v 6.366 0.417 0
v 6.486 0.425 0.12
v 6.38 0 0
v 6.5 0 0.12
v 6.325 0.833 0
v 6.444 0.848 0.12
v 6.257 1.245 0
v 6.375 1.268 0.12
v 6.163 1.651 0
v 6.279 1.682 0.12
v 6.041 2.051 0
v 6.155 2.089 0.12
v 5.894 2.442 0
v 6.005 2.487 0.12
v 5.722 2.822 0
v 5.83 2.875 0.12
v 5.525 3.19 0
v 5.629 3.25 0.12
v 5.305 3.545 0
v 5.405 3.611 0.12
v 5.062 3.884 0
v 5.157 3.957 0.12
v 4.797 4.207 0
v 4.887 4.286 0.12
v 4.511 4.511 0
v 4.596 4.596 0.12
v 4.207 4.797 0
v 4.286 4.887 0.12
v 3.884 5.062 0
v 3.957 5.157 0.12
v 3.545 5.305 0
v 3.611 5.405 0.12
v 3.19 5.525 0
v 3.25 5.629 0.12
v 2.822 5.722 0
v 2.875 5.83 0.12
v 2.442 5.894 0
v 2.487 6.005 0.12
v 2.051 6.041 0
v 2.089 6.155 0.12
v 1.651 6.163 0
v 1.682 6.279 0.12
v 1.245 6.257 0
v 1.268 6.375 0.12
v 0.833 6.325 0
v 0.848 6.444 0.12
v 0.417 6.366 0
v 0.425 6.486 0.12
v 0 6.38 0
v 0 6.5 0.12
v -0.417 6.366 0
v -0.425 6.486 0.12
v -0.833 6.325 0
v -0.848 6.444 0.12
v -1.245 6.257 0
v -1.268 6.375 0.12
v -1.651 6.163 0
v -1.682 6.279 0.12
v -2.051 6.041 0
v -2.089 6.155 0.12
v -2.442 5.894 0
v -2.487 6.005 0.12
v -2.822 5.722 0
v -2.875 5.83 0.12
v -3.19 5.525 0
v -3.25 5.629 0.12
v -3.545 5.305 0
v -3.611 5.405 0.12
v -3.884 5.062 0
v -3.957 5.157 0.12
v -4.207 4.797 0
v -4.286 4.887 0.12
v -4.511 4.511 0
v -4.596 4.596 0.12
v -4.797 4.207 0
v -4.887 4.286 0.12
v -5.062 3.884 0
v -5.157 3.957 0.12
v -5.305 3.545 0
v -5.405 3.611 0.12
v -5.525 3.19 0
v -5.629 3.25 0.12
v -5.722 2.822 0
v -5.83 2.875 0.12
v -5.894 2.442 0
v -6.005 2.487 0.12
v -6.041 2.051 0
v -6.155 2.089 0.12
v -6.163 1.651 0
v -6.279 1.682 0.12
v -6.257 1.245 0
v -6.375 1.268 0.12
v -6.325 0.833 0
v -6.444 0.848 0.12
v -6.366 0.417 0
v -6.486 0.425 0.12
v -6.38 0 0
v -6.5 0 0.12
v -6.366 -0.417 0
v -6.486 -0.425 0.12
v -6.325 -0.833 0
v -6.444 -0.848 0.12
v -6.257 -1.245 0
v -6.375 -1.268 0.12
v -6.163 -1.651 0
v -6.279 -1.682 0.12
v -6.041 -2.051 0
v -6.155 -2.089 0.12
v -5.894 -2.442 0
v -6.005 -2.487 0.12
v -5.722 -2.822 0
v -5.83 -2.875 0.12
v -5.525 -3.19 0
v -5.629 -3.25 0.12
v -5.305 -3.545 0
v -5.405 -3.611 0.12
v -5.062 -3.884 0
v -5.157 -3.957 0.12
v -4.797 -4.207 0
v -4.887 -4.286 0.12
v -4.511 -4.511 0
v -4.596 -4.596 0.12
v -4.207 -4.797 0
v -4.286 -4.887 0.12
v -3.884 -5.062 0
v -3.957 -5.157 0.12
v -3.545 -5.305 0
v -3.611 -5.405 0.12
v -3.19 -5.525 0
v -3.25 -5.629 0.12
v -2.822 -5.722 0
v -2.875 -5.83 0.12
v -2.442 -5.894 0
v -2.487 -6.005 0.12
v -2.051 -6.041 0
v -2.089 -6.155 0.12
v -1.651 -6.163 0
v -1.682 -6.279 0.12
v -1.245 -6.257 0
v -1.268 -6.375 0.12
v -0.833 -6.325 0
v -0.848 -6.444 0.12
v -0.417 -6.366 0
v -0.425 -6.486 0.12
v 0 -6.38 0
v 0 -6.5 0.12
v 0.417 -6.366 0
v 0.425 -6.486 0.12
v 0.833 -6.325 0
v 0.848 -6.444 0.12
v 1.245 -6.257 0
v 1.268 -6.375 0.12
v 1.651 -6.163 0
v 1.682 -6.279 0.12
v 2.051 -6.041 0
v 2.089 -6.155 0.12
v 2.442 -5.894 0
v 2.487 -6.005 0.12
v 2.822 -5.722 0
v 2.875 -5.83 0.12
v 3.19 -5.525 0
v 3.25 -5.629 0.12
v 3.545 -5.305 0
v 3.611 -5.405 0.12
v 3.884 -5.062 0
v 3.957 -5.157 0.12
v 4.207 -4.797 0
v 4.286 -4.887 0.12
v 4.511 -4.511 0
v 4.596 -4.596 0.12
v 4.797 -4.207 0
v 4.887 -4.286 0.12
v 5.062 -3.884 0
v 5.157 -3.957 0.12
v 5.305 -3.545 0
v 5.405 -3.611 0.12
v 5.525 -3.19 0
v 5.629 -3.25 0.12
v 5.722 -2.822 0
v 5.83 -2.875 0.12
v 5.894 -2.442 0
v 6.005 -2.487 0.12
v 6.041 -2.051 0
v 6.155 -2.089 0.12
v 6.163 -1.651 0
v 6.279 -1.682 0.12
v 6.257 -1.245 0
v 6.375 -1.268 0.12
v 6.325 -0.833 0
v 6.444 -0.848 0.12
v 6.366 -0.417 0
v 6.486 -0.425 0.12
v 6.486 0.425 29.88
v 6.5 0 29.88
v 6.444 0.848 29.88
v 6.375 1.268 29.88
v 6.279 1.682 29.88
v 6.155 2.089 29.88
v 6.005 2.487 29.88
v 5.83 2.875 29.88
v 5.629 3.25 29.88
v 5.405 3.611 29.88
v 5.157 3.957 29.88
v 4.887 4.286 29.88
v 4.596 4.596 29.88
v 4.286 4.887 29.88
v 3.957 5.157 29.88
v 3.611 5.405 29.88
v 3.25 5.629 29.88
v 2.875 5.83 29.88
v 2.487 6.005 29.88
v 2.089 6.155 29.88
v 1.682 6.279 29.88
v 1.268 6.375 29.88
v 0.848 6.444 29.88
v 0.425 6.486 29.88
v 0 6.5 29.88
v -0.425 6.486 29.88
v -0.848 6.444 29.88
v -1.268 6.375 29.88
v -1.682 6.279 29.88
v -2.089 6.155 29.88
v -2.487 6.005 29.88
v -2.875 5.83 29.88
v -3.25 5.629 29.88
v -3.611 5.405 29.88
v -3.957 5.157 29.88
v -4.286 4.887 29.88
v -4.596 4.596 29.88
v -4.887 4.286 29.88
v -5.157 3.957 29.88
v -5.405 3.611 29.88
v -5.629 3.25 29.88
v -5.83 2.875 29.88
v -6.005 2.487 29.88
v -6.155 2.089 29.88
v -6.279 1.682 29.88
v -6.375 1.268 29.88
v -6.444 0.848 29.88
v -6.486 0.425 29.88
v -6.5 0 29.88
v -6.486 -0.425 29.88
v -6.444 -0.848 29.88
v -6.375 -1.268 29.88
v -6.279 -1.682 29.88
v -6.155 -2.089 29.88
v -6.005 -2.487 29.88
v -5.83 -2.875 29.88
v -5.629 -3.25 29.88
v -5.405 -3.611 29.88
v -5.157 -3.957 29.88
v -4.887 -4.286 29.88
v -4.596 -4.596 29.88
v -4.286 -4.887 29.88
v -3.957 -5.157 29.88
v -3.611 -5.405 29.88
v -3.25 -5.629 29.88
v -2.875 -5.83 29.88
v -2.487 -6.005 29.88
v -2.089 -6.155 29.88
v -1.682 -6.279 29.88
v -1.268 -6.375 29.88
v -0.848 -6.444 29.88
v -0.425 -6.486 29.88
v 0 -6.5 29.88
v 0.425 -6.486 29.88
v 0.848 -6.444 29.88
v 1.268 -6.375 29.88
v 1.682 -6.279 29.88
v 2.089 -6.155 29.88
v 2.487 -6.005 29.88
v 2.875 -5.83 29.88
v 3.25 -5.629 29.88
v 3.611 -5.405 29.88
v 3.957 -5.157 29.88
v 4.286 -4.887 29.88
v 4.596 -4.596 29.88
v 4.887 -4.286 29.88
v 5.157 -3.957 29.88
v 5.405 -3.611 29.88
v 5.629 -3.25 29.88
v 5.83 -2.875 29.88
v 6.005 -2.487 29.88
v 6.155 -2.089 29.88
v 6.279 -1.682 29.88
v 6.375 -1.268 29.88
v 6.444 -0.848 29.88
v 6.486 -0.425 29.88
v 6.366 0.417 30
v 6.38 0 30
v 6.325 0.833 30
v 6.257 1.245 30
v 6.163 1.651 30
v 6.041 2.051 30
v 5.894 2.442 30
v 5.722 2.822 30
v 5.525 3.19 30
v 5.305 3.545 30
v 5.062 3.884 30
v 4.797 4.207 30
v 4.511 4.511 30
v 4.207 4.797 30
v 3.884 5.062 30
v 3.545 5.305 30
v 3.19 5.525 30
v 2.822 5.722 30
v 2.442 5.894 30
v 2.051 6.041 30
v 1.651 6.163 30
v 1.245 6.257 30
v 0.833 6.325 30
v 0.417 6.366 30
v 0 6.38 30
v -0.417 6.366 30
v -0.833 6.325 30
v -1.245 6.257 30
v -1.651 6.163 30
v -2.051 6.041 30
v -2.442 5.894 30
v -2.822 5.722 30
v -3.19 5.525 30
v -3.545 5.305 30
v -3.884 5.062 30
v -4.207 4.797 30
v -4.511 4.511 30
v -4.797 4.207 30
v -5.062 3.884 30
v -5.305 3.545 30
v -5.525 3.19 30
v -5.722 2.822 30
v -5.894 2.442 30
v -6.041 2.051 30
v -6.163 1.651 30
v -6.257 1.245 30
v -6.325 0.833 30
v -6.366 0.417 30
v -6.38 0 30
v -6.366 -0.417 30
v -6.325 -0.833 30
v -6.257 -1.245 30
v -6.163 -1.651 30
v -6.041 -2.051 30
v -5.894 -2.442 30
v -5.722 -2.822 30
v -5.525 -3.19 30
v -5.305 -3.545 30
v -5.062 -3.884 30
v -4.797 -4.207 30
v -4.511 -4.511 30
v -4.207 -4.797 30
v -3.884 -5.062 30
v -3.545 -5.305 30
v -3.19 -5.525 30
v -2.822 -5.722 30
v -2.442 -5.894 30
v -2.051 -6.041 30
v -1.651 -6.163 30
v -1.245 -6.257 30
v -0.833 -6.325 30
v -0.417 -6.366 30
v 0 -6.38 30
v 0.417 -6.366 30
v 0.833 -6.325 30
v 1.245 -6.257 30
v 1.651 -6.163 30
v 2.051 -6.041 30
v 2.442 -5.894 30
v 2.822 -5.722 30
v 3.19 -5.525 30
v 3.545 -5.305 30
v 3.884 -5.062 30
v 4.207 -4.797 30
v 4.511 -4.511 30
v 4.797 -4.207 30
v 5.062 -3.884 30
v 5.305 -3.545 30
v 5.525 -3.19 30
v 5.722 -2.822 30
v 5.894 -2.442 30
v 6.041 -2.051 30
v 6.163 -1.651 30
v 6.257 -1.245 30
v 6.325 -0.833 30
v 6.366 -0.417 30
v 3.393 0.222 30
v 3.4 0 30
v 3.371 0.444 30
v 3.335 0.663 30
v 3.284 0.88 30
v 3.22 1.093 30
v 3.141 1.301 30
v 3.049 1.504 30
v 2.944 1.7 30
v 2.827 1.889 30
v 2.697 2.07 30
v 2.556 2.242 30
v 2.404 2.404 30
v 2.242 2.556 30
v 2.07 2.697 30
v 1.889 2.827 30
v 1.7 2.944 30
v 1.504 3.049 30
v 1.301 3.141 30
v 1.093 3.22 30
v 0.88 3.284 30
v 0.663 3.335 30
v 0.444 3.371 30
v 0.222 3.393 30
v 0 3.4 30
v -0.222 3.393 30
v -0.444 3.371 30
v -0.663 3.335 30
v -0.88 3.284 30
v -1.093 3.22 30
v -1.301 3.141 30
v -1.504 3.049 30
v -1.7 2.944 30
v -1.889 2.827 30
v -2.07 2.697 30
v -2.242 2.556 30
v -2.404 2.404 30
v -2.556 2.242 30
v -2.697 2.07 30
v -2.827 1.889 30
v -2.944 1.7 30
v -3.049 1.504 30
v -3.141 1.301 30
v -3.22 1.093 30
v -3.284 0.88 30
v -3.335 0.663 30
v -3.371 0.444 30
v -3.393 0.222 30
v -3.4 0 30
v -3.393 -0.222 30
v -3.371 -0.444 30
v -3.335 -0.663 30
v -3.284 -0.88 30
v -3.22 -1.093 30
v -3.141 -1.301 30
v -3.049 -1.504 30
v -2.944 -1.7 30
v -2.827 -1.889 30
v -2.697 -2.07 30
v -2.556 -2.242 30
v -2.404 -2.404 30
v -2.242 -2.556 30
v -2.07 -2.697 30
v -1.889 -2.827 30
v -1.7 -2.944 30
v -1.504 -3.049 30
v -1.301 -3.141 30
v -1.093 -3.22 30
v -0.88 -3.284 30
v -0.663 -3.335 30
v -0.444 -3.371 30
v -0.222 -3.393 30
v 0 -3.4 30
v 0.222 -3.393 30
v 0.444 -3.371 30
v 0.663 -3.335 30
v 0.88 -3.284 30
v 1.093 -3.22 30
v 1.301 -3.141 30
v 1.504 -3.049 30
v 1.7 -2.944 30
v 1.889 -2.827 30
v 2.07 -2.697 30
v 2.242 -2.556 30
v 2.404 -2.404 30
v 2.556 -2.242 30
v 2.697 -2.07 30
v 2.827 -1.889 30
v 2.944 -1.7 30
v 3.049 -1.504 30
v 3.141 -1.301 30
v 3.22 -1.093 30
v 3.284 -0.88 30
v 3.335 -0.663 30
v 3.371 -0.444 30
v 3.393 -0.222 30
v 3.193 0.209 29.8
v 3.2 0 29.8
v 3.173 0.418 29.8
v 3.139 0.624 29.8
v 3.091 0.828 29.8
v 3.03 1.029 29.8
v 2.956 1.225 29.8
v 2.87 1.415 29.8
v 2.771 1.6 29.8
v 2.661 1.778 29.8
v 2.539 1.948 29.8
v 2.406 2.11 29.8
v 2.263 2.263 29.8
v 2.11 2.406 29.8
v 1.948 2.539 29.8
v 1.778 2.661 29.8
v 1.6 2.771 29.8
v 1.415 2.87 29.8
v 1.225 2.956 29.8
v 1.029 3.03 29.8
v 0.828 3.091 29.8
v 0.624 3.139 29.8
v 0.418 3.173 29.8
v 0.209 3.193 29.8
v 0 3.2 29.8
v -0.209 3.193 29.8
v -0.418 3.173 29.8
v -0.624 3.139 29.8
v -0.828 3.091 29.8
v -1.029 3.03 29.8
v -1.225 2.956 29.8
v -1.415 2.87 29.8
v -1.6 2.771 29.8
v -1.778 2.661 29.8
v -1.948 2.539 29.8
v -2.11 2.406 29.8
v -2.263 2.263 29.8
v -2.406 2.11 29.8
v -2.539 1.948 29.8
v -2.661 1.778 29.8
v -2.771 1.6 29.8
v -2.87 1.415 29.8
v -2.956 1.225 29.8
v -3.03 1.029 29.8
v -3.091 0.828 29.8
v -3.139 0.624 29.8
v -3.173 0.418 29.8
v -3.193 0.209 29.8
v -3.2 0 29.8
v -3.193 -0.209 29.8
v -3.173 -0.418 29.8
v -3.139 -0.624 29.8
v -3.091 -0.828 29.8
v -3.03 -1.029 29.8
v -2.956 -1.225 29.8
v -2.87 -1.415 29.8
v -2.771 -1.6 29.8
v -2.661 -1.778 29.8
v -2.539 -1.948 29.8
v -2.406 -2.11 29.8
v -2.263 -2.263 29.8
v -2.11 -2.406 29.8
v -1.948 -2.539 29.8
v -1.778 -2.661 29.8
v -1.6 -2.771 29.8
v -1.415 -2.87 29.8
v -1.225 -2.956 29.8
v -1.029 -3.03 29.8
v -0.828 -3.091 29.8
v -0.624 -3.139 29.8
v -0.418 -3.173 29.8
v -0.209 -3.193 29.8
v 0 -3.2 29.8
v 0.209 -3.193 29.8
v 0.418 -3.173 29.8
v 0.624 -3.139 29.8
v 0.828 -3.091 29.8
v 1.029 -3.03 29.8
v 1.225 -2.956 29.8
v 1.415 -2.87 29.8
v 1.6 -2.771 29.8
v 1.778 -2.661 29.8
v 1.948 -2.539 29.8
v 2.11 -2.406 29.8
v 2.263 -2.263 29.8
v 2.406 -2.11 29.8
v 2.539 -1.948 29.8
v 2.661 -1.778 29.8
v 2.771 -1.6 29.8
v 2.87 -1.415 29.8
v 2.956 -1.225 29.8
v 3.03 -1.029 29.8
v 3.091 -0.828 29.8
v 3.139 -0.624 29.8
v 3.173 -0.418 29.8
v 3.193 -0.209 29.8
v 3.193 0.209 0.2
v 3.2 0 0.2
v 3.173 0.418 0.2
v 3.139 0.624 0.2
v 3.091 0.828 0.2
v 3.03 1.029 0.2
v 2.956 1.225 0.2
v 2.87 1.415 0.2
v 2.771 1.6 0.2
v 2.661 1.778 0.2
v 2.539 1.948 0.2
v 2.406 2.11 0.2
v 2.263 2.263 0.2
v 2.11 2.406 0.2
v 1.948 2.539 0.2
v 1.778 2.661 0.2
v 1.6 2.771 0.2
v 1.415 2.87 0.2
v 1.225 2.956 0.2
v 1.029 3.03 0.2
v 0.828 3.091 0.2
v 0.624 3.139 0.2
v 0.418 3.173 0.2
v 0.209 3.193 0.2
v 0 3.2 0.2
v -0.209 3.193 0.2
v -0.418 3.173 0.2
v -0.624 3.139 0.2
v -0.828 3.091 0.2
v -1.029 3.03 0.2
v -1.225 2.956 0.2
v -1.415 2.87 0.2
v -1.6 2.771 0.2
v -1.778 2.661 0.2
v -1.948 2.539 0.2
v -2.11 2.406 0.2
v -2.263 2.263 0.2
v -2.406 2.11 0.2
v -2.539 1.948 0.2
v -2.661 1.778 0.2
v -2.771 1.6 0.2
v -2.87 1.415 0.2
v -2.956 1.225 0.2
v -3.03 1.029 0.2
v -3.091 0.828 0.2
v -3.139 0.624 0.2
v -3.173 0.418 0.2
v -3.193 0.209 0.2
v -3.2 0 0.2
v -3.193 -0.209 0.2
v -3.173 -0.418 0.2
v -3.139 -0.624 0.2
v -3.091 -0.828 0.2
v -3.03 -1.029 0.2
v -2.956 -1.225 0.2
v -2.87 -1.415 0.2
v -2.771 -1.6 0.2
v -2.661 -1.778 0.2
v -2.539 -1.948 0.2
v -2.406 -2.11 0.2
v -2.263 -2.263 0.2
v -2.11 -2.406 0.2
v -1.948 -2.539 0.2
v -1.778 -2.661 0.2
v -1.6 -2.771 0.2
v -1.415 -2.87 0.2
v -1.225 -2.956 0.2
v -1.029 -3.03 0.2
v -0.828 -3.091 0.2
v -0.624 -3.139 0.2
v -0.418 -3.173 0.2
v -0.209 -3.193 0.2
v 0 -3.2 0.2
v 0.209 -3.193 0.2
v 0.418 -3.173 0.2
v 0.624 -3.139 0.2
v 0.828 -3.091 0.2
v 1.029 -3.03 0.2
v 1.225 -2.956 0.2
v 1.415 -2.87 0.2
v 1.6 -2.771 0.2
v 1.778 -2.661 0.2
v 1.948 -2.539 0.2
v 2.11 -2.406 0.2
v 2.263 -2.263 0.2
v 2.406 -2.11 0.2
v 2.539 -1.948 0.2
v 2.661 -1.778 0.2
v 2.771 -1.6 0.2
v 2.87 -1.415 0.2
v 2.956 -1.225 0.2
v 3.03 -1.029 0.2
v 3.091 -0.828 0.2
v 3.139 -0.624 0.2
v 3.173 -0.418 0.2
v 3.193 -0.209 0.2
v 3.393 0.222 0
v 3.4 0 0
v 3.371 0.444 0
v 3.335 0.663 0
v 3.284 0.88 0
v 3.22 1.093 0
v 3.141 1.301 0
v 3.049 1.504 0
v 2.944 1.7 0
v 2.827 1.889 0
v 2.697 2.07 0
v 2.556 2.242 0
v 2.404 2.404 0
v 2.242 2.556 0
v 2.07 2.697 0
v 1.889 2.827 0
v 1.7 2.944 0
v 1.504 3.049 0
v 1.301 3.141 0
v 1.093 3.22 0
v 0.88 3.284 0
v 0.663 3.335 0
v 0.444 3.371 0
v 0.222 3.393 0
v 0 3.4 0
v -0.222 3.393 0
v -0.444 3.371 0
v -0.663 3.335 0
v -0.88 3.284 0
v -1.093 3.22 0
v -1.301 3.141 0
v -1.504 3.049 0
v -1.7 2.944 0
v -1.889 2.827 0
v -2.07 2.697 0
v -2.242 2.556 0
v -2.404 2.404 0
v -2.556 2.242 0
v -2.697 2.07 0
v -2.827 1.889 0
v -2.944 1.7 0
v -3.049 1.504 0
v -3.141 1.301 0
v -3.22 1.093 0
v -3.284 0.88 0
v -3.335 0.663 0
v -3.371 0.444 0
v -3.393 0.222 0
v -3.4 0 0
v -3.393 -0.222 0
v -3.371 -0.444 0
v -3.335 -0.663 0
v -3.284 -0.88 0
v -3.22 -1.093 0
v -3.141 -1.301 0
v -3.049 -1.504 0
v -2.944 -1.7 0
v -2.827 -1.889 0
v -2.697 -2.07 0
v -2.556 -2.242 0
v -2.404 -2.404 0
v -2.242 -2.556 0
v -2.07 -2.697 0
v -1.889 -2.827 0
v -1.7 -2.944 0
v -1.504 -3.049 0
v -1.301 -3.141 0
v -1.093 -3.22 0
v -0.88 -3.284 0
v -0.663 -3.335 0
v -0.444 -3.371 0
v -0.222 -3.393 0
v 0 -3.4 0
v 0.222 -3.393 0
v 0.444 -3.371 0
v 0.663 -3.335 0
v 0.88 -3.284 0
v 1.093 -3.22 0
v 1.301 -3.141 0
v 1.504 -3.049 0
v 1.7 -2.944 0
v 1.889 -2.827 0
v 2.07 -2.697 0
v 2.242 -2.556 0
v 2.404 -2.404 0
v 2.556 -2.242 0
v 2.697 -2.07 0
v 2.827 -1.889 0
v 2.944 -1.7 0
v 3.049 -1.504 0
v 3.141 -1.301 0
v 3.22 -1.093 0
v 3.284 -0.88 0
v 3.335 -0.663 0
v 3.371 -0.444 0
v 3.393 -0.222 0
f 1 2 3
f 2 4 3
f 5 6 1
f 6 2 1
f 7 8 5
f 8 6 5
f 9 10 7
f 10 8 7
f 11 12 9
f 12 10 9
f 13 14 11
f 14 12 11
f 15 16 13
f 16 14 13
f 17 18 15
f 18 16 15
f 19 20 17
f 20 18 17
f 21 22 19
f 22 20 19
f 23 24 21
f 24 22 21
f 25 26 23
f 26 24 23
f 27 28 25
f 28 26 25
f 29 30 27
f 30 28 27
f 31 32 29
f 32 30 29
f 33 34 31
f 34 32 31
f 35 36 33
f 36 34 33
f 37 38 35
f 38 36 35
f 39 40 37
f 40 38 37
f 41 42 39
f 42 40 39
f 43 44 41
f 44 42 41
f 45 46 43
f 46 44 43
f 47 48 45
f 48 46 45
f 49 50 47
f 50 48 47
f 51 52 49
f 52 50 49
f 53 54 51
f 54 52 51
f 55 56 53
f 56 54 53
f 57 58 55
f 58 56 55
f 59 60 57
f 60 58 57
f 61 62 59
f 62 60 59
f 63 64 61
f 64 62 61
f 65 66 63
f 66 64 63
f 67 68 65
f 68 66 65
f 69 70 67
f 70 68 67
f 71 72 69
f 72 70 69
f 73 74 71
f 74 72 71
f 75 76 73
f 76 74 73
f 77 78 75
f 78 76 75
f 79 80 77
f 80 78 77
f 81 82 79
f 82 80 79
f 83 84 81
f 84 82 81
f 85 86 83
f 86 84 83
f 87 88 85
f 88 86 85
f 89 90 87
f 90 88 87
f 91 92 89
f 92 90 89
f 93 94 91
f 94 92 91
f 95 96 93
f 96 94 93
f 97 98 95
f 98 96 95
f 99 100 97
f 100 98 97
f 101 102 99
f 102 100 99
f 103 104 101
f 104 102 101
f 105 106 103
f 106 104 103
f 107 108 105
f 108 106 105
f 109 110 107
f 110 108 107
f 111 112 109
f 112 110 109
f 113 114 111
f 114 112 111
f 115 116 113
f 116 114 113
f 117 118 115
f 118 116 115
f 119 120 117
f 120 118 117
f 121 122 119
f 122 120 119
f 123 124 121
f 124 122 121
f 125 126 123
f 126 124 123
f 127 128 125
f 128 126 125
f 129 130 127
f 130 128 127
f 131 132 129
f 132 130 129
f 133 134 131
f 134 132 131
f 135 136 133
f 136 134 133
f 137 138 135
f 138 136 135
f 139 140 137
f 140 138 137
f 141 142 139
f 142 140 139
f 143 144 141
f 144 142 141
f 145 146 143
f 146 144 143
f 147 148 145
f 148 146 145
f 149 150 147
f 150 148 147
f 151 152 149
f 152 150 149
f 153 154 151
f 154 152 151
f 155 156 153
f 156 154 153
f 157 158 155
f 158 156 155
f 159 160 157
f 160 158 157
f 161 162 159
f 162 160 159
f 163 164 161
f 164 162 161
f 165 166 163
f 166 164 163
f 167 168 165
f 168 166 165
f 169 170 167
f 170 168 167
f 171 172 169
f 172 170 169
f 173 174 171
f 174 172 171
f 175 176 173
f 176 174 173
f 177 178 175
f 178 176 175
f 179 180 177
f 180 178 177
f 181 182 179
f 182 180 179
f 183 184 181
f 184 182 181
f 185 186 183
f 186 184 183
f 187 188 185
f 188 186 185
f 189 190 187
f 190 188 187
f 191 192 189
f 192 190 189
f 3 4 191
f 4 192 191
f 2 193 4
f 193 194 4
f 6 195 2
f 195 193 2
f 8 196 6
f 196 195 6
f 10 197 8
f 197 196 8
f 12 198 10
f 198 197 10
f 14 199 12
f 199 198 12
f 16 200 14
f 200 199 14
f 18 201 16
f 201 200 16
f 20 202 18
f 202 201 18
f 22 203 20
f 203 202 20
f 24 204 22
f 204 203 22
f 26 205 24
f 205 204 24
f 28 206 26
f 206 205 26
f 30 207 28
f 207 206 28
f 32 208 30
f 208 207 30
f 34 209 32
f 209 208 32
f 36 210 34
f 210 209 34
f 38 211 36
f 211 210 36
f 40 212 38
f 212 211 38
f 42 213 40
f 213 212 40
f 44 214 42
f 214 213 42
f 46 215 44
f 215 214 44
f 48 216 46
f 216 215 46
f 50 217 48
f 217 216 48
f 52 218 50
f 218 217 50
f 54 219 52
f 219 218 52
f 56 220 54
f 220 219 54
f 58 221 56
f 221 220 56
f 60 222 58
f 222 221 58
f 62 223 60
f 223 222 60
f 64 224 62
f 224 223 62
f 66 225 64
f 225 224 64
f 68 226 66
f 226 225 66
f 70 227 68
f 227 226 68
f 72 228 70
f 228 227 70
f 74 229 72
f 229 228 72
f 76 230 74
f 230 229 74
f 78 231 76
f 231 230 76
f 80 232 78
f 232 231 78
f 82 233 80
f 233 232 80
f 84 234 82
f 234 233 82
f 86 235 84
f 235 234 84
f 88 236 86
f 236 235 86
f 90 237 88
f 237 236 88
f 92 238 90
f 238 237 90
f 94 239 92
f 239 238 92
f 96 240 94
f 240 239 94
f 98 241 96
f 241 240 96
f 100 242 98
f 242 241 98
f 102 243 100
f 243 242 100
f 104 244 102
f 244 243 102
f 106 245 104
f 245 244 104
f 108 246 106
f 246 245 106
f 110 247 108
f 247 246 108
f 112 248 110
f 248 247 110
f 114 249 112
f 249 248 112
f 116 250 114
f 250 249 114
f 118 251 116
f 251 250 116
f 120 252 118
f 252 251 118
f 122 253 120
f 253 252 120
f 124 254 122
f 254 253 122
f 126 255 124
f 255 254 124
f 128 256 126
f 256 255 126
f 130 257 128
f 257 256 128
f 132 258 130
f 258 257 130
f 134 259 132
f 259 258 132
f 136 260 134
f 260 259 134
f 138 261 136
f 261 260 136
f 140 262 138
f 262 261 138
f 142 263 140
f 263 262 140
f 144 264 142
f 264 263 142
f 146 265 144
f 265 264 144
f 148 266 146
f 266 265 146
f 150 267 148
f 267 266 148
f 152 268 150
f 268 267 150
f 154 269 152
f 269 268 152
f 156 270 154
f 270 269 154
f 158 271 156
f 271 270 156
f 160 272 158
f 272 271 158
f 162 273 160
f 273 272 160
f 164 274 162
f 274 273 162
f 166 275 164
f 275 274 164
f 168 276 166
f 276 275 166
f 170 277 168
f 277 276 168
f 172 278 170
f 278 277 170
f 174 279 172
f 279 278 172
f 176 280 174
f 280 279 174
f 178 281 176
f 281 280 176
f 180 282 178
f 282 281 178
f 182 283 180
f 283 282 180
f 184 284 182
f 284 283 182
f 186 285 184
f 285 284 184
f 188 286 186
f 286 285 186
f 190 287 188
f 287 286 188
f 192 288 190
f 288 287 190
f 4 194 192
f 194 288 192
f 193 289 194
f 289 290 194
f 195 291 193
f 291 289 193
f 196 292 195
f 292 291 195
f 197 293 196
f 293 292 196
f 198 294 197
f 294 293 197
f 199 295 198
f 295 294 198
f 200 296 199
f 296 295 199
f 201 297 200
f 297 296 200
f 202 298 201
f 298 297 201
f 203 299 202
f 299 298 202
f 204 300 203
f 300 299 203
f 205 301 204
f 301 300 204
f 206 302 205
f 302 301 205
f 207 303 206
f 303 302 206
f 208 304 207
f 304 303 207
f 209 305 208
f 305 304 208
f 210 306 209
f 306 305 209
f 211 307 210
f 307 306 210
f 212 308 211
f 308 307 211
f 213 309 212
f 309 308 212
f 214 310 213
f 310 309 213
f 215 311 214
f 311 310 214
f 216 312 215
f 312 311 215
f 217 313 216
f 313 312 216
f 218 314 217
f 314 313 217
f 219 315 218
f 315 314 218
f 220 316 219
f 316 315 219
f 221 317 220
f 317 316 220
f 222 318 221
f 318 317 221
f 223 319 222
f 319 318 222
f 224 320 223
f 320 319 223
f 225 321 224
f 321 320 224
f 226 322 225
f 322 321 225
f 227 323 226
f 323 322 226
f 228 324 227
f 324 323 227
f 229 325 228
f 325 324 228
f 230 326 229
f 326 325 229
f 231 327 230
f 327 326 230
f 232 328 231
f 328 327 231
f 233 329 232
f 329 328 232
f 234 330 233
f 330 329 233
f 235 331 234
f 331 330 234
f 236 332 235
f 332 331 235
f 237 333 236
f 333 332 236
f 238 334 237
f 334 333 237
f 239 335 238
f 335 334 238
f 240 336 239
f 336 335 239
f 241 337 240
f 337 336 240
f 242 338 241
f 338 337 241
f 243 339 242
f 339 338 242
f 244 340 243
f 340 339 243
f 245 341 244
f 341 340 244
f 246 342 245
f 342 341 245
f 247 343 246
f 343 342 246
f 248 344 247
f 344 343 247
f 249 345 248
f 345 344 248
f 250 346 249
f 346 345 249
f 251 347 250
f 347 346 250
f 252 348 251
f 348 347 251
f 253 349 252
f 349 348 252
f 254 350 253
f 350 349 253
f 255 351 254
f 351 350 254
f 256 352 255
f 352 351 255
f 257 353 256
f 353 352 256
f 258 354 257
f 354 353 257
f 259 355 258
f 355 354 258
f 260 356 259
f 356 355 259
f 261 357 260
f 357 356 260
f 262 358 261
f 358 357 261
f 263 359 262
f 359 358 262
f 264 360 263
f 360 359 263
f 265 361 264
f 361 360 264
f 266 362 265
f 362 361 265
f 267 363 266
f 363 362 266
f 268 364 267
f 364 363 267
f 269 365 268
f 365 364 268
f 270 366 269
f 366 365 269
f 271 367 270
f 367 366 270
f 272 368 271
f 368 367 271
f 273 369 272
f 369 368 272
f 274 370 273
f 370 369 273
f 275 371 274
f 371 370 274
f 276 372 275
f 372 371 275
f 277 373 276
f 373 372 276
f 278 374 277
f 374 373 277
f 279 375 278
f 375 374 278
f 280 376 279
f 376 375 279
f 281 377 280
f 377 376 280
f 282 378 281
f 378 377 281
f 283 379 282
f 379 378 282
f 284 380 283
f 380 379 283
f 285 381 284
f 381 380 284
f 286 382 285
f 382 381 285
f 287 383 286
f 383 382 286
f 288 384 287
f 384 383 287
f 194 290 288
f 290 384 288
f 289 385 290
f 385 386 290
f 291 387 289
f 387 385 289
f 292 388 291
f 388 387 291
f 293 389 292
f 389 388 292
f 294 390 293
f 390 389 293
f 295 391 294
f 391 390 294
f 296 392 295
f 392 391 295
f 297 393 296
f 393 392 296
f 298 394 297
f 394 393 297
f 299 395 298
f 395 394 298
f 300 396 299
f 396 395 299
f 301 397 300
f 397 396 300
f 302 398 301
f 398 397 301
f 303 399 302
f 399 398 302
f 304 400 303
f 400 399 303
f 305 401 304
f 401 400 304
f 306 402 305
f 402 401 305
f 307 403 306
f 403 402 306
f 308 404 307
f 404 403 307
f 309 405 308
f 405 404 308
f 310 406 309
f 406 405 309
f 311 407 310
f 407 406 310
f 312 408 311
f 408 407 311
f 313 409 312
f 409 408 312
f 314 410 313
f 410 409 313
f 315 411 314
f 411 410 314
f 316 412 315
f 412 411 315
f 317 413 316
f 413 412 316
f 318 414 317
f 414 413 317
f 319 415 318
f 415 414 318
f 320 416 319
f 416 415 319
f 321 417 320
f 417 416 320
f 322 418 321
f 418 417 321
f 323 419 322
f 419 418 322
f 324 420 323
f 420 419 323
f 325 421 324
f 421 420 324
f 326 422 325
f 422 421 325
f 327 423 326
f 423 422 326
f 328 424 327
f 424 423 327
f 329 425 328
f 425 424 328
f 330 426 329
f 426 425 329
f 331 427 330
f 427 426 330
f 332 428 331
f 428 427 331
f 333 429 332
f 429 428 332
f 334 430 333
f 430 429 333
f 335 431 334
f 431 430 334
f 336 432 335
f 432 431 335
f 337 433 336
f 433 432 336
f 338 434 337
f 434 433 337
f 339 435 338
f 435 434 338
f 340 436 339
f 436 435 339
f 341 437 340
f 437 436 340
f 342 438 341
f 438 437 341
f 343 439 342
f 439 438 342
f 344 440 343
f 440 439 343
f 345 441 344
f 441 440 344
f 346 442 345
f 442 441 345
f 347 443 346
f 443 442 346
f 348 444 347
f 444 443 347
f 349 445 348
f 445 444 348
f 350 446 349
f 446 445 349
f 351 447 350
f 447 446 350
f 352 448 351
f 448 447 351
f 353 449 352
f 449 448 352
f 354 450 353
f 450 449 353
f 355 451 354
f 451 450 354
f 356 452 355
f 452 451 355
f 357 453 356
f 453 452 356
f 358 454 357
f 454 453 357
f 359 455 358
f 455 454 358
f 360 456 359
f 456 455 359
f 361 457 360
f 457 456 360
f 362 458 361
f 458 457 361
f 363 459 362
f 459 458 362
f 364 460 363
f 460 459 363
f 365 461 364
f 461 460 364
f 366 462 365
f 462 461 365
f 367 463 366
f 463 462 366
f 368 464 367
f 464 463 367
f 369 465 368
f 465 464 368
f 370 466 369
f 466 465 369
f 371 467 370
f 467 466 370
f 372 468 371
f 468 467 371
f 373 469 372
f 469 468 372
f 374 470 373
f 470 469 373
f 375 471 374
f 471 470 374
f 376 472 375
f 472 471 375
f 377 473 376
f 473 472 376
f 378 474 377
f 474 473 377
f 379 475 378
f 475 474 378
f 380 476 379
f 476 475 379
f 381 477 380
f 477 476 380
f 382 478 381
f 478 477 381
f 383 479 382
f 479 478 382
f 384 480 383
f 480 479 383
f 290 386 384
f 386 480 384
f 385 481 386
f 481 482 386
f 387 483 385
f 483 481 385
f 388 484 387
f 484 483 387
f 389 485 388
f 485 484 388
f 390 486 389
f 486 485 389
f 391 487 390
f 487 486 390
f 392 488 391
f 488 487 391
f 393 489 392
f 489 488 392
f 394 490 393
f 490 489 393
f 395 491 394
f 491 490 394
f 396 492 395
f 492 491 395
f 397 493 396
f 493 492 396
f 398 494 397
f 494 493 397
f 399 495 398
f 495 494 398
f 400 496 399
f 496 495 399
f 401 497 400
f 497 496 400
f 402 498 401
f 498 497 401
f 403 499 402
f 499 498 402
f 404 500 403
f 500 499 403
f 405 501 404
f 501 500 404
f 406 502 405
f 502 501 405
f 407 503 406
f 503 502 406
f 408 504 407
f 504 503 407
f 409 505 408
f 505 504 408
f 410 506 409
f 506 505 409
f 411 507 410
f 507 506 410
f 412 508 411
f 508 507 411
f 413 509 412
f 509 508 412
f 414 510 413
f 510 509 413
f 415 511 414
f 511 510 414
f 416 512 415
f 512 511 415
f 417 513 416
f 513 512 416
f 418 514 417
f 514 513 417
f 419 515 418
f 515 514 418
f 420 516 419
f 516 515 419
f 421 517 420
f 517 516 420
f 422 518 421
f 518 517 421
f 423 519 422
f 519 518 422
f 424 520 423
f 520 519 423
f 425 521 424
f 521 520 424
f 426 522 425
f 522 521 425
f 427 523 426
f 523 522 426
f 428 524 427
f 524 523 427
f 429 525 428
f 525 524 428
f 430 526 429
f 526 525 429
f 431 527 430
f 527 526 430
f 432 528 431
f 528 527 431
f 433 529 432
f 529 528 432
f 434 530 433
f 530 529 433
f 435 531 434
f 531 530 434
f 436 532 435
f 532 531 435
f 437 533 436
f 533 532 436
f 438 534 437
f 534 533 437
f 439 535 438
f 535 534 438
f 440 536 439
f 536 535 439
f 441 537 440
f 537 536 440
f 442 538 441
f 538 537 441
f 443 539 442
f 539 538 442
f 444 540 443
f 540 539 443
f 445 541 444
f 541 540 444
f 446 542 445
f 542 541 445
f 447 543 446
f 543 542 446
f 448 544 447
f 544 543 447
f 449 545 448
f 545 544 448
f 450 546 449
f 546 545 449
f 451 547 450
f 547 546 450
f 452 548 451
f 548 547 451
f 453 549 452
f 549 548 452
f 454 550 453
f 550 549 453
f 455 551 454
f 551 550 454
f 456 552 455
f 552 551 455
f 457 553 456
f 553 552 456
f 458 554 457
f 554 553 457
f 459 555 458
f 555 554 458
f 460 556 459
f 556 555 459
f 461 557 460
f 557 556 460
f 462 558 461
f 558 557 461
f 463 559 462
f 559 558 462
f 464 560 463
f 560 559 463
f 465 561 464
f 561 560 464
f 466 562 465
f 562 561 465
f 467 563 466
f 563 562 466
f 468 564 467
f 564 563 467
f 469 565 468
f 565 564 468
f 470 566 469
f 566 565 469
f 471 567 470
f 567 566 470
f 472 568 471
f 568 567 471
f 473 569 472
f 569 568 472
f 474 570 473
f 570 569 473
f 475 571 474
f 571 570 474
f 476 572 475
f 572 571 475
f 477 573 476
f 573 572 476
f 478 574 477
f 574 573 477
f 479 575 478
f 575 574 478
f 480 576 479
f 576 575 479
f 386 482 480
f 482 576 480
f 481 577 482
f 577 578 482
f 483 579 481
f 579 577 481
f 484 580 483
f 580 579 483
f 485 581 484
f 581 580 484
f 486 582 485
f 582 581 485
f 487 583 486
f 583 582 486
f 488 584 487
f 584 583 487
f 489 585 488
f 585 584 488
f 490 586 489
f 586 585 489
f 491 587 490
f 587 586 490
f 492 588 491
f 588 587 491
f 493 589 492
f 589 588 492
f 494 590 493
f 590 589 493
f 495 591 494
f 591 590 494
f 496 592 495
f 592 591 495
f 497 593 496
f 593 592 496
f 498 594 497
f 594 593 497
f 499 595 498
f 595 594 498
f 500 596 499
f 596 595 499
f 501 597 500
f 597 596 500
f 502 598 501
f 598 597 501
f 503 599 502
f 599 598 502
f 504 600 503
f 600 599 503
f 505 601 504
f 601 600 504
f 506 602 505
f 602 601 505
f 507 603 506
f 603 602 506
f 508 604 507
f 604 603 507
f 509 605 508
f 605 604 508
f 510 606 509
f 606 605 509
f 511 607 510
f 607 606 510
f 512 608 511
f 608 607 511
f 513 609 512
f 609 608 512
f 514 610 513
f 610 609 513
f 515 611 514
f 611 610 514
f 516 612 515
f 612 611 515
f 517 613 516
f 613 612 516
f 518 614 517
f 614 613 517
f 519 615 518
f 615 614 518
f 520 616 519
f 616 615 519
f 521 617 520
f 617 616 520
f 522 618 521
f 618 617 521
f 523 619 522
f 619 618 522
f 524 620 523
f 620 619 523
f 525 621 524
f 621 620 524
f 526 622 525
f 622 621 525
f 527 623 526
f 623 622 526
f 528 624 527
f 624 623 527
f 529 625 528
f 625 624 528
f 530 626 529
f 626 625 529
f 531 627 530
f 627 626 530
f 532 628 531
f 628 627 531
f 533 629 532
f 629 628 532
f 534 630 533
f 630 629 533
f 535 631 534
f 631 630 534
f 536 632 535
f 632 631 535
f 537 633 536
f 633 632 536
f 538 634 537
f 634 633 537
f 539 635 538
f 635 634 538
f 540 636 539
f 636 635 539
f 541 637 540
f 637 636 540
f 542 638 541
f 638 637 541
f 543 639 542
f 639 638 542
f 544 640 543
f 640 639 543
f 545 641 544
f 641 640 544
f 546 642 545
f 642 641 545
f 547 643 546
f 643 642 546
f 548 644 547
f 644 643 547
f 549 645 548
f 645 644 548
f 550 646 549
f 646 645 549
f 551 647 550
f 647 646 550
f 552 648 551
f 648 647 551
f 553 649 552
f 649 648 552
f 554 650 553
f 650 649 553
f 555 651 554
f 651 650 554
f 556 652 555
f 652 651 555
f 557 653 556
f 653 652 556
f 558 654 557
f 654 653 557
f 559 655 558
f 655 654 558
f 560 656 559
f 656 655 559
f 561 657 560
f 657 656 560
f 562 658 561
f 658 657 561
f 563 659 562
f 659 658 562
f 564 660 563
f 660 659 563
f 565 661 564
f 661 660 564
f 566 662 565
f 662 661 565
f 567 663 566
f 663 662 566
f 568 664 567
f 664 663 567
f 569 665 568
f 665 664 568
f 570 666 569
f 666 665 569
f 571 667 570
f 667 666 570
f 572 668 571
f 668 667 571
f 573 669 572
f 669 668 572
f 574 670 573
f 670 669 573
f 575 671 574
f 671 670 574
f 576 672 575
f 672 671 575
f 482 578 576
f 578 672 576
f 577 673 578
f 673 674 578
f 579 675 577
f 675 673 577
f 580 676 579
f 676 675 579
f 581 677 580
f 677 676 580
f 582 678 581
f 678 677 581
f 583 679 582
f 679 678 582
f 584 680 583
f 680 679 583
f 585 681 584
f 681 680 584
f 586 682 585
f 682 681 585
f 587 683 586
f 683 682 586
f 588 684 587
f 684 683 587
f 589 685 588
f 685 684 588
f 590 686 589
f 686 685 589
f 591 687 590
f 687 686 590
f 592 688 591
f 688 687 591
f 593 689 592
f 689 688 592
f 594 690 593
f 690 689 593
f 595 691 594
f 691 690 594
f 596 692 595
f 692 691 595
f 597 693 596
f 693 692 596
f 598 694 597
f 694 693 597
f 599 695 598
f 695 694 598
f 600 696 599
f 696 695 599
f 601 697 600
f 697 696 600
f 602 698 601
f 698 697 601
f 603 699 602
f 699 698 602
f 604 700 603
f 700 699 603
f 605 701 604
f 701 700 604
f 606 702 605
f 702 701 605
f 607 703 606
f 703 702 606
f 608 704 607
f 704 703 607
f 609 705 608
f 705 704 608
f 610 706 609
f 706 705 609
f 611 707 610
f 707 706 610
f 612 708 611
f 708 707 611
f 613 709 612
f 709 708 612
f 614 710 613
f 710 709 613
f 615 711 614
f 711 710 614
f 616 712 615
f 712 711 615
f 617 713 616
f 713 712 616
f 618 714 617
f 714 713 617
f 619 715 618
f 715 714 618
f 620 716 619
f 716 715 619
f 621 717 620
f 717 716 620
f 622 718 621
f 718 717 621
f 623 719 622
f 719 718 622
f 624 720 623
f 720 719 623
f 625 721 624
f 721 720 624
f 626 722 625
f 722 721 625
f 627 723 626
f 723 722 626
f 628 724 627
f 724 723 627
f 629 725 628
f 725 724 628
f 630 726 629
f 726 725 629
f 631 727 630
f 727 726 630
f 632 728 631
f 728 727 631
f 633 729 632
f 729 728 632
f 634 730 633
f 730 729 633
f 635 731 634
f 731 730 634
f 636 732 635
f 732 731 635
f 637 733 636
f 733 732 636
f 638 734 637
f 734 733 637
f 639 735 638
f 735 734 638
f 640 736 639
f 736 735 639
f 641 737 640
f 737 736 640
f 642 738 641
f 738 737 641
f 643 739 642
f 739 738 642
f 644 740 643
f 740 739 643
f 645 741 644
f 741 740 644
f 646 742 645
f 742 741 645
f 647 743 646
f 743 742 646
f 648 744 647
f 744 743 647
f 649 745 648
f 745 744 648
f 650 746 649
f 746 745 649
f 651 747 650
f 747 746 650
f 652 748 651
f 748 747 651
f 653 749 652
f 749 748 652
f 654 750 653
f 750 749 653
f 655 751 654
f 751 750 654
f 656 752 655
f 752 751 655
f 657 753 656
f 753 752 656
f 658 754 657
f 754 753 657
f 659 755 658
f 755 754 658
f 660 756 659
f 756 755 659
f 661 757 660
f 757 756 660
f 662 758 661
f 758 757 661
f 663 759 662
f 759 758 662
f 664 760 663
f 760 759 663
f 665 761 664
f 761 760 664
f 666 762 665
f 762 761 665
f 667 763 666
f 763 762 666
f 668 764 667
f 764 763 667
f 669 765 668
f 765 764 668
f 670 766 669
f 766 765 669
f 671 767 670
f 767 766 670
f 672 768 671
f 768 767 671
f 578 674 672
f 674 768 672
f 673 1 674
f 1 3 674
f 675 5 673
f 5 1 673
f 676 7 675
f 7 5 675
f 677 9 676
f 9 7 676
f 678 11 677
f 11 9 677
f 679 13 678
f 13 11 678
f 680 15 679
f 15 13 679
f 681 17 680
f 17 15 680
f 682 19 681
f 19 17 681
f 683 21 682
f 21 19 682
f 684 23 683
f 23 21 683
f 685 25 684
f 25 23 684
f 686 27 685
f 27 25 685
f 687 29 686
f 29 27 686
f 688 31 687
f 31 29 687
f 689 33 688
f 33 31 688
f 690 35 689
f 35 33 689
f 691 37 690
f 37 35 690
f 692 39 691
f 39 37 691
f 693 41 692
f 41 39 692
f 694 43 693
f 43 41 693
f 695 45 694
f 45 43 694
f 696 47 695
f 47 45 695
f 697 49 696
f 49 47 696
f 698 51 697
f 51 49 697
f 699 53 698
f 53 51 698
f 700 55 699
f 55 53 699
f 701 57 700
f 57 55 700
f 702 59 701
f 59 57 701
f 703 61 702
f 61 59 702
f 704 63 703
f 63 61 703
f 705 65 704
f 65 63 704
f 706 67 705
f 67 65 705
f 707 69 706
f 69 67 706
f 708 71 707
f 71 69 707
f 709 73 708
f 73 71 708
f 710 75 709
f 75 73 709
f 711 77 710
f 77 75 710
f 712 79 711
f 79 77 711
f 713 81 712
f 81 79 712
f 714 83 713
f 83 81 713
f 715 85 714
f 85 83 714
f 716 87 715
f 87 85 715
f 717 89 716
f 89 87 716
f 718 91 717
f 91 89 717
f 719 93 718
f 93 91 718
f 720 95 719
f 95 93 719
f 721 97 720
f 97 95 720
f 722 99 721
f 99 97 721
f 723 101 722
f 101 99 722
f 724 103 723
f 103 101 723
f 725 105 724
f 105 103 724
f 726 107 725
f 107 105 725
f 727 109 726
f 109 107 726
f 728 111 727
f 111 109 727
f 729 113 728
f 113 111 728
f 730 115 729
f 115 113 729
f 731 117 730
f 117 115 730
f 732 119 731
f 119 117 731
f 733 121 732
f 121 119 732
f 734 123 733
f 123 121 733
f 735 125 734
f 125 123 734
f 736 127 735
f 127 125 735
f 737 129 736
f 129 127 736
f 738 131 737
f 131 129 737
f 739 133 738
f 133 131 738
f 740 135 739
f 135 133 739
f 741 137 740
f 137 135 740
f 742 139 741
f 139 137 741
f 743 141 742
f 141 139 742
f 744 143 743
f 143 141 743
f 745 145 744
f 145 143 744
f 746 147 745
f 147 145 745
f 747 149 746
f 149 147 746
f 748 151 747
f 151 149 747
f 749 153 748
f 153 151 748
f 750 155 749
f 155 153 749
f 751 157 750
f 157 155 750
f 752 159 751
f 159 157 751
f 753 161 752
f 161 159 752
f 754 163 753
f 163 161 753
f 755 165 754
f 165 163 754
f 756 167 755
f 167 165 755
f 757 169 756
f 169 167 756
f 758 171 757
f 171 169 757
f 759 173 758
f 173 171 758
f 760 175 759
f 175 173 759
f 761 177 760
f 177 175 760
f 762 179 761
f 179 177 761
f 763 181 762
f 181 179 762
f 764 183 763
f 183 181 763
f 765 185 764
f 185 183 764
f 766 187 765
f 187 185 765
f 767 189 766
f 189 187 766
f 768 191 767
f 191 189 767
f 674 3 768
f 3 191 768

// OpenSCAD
// OOMP generic catalogue model; units: mm.
// Stud length is additional to body depth. Tapping depths are model assumptions.
variant = "full"; // [full, display]
family = "spacer";
connection_type = "plain";
depth_mm = 30;
stud_length_mm = 0;
tapped_depth_mm = 0;
bore_mm = 6.4;
outer_diameter_mm = 13;
across_flats_mm = 6;
thread_nominal_diameter_mm = 3;
thread_pitch_mm = 0.5;
edge_chamfer_mm = 0.12;
mouth_chamfer_mm = 0.2;
angular_segments = 96;
samples_per_pitch = 16;

// Boundary travels up the outside, then down any tapped/plain bore.
// Equal-height rings at shoulders form the annular shoulder faces.
n = angular_segments;
threaded = family == "standoff";
has_stud = connection_type == "stud_to_tapped" || connection_type == "stud_to_stud";
two_studs = connection_type == "stud_to_stud";
through = !threaded || connection_type == "tapped_to_tapped";
pitch = thread_pitch_mm;
diameter = threaded ? thread_nominal_diameter_mm : bore_mm;
minor = diameter - 5*sqrt(3)*pitch/8;
transition = mouth_chamfer_mm + (threaded ? 5*sqrt(3)*pitch/16 : 0);
tip_chamfer = mouth_chamfer_mm + 17*sqrt(3)*pitch/48;
function sorted(v) = len(v)<=1 ? v : let(p=v[0])
    concat(sorted([for(x=v) if(x<p-1e-8) x]), [p], sorted([for(x=v) if(x>p+1e-8) x]));
function reverse(v) = [for(i=[len(v)-1:-1:0]) v[i]];
function theta(i) = i*360/n;
function fract(x) = x-floor(x);
function phase_distance(i,z) = abs(fract(z/pitch-theta(i)/360+0.5)-0.5);
function thread_r(i,z) = minor/2 + min(5*sqrt(3)*pitch/16,
    max(0,(phase_distance(i,z)-0.125)*pitch*sqrt(3)));
function stud_r(i,z,tip) = min(diameter/2 - (variant=="full" ?
    min(17*sqrt(3)*pitch/48,max(0,(phase_distance(i,z)-0.0625)*pitch*sqrt(3))) : 0),
    diameter/2-tip_chamfer+abs(z-tip));
function body_r(i,z) = (threaded ? across_flats_mm/2/cos(theta(i)%60-30) : outer_diameter_mm/2)
    - max(0,edge_chamfer_mm-min(z,depth_mm-z));
function bore_r(i,z) = max(threaded ? (variant=="full" ? thread_r(i,z) : minor/2) : diameter/2,
    diameter/2+mouth_chamfer_mm-(through ? min(z,depth_mm-z) : depth_mm-z));
function stud_z(a,b,tip) = let(count=variant=="full" ? ceil(stud_length_mm/pitch*samples_per_pitch) : 1)
    sorted(concat([for(i=[0:count]) a+(b-a)*i/count], [tip==a ? tip+tip_chamfer : tip-tip_chamfer]));
body_z = sorted([0,edge_chamfer_mm,depth_mm-edge_chamfer_mm,depth_mm]);
low = through ? 0 : depth_mm-tapped_depth_mm;
count = threaded && variant=="full" ? ceil((depth_mm-low)/pitch*samples_per_pitch) : 1;
bore_z = two_studs ? [] : reverse(sorted(concat(
    [for(i=[0:count]) low+(depth_mm-low)*i/count],
    [depth_mm-mouth_chamfer_mm,depth_mm-transition],
    through ? [mouth_chamfer_mm,transition] : [])));
// Ring descriptors: [height, kind, tip]. Kind: 0 body, 1 stud, 2 bore.
rings = concat(
    has_stud ? [for(z=stud_z(-stud_length_mm,0,-stud_length_mm)) [z,1,-stud_length_mm]] : [],
    [for(z=body_z) [z,0,0]],
    two_studs ? [for(z=stud_z(depth_mm,depth_mm+stud_length_mm,depth_mm+stud_length_mm)) [z,1,depth_mm+stud_length_mm]] : [],
    [for(z=bore_z) [z,2,0]]);
function radius(i,ring) = ring[1]==0 ? body_r(i,ring[0]) :
    ring[1]==1 ? stud_r(i,ring[0],ring[2]) : bore_r(i,ring[0]);
points = concat([for(ring=rings) for(i=[0:n-1])
    [radius(i,ring)*cos(theta(i)),radius(i,ring)*sin(theta(i)),ring[0]]],
    through ? [] : [[0,0,rings[0][0]],[0,0,rings[len(rings)-1][0]]]);
center = len(rings)*n;
last = (len(rings)-1)*n;
// OpenSCAD winding is opposite to STL winding.
faces = concat(
    [for(j=[0:len(rings)-(through ? 1 : 2)]) for(i=[0:n-1]) each
        let(a=j*n+i,b=j*n+(i+1)%n,c=((j+1)%len(rings))*n+(i+1)%n,d=((j+1)%len(rings))*n+i)
        [[a,c,b],[a,d,c]]],
    through ? [] : [for(i=[0:n-1]) each let(k=(i+1)%n)
        [[center,i,k],[center+1,last+k,last+i]]]);
assert(family=="spacer" || family=="standoff");
assert(!threaded || connection_type=="tapped_to_tapped" || has_stud);
assert(depth_mm>0 && diameter>0 && pitch>0);
assert(variant=="full" || variant=="display");
assert(n>=24 && n%12==0 && samples_per_pitch>=8);
assert(mouth_chamfer_mm>0 && mouth_chamfer_mm<depth_mm/2);
assert(edge_chamfer_mm>=0 && edge_chamfer_mm<depth_mm/2);
assert(diameter+4*max(mouth_chamfer_mm,edge_chamfer_mm) < (threaded ? across_flats_mm : outer_diameter_mm));
assert(!has_stud || stud_length_mm>2*mouth_chamfer_mm);
assert(!through || !threaded || 2*transition<depth_mm);
assert(connection_type!="stud_to_tapped" || (tapped_depth_mm>transition && tapped_depth_mm<depth_mm));
color([0.86,0.85,0.81]) polyhedron(points=points,faces=faces,convexity=20);
